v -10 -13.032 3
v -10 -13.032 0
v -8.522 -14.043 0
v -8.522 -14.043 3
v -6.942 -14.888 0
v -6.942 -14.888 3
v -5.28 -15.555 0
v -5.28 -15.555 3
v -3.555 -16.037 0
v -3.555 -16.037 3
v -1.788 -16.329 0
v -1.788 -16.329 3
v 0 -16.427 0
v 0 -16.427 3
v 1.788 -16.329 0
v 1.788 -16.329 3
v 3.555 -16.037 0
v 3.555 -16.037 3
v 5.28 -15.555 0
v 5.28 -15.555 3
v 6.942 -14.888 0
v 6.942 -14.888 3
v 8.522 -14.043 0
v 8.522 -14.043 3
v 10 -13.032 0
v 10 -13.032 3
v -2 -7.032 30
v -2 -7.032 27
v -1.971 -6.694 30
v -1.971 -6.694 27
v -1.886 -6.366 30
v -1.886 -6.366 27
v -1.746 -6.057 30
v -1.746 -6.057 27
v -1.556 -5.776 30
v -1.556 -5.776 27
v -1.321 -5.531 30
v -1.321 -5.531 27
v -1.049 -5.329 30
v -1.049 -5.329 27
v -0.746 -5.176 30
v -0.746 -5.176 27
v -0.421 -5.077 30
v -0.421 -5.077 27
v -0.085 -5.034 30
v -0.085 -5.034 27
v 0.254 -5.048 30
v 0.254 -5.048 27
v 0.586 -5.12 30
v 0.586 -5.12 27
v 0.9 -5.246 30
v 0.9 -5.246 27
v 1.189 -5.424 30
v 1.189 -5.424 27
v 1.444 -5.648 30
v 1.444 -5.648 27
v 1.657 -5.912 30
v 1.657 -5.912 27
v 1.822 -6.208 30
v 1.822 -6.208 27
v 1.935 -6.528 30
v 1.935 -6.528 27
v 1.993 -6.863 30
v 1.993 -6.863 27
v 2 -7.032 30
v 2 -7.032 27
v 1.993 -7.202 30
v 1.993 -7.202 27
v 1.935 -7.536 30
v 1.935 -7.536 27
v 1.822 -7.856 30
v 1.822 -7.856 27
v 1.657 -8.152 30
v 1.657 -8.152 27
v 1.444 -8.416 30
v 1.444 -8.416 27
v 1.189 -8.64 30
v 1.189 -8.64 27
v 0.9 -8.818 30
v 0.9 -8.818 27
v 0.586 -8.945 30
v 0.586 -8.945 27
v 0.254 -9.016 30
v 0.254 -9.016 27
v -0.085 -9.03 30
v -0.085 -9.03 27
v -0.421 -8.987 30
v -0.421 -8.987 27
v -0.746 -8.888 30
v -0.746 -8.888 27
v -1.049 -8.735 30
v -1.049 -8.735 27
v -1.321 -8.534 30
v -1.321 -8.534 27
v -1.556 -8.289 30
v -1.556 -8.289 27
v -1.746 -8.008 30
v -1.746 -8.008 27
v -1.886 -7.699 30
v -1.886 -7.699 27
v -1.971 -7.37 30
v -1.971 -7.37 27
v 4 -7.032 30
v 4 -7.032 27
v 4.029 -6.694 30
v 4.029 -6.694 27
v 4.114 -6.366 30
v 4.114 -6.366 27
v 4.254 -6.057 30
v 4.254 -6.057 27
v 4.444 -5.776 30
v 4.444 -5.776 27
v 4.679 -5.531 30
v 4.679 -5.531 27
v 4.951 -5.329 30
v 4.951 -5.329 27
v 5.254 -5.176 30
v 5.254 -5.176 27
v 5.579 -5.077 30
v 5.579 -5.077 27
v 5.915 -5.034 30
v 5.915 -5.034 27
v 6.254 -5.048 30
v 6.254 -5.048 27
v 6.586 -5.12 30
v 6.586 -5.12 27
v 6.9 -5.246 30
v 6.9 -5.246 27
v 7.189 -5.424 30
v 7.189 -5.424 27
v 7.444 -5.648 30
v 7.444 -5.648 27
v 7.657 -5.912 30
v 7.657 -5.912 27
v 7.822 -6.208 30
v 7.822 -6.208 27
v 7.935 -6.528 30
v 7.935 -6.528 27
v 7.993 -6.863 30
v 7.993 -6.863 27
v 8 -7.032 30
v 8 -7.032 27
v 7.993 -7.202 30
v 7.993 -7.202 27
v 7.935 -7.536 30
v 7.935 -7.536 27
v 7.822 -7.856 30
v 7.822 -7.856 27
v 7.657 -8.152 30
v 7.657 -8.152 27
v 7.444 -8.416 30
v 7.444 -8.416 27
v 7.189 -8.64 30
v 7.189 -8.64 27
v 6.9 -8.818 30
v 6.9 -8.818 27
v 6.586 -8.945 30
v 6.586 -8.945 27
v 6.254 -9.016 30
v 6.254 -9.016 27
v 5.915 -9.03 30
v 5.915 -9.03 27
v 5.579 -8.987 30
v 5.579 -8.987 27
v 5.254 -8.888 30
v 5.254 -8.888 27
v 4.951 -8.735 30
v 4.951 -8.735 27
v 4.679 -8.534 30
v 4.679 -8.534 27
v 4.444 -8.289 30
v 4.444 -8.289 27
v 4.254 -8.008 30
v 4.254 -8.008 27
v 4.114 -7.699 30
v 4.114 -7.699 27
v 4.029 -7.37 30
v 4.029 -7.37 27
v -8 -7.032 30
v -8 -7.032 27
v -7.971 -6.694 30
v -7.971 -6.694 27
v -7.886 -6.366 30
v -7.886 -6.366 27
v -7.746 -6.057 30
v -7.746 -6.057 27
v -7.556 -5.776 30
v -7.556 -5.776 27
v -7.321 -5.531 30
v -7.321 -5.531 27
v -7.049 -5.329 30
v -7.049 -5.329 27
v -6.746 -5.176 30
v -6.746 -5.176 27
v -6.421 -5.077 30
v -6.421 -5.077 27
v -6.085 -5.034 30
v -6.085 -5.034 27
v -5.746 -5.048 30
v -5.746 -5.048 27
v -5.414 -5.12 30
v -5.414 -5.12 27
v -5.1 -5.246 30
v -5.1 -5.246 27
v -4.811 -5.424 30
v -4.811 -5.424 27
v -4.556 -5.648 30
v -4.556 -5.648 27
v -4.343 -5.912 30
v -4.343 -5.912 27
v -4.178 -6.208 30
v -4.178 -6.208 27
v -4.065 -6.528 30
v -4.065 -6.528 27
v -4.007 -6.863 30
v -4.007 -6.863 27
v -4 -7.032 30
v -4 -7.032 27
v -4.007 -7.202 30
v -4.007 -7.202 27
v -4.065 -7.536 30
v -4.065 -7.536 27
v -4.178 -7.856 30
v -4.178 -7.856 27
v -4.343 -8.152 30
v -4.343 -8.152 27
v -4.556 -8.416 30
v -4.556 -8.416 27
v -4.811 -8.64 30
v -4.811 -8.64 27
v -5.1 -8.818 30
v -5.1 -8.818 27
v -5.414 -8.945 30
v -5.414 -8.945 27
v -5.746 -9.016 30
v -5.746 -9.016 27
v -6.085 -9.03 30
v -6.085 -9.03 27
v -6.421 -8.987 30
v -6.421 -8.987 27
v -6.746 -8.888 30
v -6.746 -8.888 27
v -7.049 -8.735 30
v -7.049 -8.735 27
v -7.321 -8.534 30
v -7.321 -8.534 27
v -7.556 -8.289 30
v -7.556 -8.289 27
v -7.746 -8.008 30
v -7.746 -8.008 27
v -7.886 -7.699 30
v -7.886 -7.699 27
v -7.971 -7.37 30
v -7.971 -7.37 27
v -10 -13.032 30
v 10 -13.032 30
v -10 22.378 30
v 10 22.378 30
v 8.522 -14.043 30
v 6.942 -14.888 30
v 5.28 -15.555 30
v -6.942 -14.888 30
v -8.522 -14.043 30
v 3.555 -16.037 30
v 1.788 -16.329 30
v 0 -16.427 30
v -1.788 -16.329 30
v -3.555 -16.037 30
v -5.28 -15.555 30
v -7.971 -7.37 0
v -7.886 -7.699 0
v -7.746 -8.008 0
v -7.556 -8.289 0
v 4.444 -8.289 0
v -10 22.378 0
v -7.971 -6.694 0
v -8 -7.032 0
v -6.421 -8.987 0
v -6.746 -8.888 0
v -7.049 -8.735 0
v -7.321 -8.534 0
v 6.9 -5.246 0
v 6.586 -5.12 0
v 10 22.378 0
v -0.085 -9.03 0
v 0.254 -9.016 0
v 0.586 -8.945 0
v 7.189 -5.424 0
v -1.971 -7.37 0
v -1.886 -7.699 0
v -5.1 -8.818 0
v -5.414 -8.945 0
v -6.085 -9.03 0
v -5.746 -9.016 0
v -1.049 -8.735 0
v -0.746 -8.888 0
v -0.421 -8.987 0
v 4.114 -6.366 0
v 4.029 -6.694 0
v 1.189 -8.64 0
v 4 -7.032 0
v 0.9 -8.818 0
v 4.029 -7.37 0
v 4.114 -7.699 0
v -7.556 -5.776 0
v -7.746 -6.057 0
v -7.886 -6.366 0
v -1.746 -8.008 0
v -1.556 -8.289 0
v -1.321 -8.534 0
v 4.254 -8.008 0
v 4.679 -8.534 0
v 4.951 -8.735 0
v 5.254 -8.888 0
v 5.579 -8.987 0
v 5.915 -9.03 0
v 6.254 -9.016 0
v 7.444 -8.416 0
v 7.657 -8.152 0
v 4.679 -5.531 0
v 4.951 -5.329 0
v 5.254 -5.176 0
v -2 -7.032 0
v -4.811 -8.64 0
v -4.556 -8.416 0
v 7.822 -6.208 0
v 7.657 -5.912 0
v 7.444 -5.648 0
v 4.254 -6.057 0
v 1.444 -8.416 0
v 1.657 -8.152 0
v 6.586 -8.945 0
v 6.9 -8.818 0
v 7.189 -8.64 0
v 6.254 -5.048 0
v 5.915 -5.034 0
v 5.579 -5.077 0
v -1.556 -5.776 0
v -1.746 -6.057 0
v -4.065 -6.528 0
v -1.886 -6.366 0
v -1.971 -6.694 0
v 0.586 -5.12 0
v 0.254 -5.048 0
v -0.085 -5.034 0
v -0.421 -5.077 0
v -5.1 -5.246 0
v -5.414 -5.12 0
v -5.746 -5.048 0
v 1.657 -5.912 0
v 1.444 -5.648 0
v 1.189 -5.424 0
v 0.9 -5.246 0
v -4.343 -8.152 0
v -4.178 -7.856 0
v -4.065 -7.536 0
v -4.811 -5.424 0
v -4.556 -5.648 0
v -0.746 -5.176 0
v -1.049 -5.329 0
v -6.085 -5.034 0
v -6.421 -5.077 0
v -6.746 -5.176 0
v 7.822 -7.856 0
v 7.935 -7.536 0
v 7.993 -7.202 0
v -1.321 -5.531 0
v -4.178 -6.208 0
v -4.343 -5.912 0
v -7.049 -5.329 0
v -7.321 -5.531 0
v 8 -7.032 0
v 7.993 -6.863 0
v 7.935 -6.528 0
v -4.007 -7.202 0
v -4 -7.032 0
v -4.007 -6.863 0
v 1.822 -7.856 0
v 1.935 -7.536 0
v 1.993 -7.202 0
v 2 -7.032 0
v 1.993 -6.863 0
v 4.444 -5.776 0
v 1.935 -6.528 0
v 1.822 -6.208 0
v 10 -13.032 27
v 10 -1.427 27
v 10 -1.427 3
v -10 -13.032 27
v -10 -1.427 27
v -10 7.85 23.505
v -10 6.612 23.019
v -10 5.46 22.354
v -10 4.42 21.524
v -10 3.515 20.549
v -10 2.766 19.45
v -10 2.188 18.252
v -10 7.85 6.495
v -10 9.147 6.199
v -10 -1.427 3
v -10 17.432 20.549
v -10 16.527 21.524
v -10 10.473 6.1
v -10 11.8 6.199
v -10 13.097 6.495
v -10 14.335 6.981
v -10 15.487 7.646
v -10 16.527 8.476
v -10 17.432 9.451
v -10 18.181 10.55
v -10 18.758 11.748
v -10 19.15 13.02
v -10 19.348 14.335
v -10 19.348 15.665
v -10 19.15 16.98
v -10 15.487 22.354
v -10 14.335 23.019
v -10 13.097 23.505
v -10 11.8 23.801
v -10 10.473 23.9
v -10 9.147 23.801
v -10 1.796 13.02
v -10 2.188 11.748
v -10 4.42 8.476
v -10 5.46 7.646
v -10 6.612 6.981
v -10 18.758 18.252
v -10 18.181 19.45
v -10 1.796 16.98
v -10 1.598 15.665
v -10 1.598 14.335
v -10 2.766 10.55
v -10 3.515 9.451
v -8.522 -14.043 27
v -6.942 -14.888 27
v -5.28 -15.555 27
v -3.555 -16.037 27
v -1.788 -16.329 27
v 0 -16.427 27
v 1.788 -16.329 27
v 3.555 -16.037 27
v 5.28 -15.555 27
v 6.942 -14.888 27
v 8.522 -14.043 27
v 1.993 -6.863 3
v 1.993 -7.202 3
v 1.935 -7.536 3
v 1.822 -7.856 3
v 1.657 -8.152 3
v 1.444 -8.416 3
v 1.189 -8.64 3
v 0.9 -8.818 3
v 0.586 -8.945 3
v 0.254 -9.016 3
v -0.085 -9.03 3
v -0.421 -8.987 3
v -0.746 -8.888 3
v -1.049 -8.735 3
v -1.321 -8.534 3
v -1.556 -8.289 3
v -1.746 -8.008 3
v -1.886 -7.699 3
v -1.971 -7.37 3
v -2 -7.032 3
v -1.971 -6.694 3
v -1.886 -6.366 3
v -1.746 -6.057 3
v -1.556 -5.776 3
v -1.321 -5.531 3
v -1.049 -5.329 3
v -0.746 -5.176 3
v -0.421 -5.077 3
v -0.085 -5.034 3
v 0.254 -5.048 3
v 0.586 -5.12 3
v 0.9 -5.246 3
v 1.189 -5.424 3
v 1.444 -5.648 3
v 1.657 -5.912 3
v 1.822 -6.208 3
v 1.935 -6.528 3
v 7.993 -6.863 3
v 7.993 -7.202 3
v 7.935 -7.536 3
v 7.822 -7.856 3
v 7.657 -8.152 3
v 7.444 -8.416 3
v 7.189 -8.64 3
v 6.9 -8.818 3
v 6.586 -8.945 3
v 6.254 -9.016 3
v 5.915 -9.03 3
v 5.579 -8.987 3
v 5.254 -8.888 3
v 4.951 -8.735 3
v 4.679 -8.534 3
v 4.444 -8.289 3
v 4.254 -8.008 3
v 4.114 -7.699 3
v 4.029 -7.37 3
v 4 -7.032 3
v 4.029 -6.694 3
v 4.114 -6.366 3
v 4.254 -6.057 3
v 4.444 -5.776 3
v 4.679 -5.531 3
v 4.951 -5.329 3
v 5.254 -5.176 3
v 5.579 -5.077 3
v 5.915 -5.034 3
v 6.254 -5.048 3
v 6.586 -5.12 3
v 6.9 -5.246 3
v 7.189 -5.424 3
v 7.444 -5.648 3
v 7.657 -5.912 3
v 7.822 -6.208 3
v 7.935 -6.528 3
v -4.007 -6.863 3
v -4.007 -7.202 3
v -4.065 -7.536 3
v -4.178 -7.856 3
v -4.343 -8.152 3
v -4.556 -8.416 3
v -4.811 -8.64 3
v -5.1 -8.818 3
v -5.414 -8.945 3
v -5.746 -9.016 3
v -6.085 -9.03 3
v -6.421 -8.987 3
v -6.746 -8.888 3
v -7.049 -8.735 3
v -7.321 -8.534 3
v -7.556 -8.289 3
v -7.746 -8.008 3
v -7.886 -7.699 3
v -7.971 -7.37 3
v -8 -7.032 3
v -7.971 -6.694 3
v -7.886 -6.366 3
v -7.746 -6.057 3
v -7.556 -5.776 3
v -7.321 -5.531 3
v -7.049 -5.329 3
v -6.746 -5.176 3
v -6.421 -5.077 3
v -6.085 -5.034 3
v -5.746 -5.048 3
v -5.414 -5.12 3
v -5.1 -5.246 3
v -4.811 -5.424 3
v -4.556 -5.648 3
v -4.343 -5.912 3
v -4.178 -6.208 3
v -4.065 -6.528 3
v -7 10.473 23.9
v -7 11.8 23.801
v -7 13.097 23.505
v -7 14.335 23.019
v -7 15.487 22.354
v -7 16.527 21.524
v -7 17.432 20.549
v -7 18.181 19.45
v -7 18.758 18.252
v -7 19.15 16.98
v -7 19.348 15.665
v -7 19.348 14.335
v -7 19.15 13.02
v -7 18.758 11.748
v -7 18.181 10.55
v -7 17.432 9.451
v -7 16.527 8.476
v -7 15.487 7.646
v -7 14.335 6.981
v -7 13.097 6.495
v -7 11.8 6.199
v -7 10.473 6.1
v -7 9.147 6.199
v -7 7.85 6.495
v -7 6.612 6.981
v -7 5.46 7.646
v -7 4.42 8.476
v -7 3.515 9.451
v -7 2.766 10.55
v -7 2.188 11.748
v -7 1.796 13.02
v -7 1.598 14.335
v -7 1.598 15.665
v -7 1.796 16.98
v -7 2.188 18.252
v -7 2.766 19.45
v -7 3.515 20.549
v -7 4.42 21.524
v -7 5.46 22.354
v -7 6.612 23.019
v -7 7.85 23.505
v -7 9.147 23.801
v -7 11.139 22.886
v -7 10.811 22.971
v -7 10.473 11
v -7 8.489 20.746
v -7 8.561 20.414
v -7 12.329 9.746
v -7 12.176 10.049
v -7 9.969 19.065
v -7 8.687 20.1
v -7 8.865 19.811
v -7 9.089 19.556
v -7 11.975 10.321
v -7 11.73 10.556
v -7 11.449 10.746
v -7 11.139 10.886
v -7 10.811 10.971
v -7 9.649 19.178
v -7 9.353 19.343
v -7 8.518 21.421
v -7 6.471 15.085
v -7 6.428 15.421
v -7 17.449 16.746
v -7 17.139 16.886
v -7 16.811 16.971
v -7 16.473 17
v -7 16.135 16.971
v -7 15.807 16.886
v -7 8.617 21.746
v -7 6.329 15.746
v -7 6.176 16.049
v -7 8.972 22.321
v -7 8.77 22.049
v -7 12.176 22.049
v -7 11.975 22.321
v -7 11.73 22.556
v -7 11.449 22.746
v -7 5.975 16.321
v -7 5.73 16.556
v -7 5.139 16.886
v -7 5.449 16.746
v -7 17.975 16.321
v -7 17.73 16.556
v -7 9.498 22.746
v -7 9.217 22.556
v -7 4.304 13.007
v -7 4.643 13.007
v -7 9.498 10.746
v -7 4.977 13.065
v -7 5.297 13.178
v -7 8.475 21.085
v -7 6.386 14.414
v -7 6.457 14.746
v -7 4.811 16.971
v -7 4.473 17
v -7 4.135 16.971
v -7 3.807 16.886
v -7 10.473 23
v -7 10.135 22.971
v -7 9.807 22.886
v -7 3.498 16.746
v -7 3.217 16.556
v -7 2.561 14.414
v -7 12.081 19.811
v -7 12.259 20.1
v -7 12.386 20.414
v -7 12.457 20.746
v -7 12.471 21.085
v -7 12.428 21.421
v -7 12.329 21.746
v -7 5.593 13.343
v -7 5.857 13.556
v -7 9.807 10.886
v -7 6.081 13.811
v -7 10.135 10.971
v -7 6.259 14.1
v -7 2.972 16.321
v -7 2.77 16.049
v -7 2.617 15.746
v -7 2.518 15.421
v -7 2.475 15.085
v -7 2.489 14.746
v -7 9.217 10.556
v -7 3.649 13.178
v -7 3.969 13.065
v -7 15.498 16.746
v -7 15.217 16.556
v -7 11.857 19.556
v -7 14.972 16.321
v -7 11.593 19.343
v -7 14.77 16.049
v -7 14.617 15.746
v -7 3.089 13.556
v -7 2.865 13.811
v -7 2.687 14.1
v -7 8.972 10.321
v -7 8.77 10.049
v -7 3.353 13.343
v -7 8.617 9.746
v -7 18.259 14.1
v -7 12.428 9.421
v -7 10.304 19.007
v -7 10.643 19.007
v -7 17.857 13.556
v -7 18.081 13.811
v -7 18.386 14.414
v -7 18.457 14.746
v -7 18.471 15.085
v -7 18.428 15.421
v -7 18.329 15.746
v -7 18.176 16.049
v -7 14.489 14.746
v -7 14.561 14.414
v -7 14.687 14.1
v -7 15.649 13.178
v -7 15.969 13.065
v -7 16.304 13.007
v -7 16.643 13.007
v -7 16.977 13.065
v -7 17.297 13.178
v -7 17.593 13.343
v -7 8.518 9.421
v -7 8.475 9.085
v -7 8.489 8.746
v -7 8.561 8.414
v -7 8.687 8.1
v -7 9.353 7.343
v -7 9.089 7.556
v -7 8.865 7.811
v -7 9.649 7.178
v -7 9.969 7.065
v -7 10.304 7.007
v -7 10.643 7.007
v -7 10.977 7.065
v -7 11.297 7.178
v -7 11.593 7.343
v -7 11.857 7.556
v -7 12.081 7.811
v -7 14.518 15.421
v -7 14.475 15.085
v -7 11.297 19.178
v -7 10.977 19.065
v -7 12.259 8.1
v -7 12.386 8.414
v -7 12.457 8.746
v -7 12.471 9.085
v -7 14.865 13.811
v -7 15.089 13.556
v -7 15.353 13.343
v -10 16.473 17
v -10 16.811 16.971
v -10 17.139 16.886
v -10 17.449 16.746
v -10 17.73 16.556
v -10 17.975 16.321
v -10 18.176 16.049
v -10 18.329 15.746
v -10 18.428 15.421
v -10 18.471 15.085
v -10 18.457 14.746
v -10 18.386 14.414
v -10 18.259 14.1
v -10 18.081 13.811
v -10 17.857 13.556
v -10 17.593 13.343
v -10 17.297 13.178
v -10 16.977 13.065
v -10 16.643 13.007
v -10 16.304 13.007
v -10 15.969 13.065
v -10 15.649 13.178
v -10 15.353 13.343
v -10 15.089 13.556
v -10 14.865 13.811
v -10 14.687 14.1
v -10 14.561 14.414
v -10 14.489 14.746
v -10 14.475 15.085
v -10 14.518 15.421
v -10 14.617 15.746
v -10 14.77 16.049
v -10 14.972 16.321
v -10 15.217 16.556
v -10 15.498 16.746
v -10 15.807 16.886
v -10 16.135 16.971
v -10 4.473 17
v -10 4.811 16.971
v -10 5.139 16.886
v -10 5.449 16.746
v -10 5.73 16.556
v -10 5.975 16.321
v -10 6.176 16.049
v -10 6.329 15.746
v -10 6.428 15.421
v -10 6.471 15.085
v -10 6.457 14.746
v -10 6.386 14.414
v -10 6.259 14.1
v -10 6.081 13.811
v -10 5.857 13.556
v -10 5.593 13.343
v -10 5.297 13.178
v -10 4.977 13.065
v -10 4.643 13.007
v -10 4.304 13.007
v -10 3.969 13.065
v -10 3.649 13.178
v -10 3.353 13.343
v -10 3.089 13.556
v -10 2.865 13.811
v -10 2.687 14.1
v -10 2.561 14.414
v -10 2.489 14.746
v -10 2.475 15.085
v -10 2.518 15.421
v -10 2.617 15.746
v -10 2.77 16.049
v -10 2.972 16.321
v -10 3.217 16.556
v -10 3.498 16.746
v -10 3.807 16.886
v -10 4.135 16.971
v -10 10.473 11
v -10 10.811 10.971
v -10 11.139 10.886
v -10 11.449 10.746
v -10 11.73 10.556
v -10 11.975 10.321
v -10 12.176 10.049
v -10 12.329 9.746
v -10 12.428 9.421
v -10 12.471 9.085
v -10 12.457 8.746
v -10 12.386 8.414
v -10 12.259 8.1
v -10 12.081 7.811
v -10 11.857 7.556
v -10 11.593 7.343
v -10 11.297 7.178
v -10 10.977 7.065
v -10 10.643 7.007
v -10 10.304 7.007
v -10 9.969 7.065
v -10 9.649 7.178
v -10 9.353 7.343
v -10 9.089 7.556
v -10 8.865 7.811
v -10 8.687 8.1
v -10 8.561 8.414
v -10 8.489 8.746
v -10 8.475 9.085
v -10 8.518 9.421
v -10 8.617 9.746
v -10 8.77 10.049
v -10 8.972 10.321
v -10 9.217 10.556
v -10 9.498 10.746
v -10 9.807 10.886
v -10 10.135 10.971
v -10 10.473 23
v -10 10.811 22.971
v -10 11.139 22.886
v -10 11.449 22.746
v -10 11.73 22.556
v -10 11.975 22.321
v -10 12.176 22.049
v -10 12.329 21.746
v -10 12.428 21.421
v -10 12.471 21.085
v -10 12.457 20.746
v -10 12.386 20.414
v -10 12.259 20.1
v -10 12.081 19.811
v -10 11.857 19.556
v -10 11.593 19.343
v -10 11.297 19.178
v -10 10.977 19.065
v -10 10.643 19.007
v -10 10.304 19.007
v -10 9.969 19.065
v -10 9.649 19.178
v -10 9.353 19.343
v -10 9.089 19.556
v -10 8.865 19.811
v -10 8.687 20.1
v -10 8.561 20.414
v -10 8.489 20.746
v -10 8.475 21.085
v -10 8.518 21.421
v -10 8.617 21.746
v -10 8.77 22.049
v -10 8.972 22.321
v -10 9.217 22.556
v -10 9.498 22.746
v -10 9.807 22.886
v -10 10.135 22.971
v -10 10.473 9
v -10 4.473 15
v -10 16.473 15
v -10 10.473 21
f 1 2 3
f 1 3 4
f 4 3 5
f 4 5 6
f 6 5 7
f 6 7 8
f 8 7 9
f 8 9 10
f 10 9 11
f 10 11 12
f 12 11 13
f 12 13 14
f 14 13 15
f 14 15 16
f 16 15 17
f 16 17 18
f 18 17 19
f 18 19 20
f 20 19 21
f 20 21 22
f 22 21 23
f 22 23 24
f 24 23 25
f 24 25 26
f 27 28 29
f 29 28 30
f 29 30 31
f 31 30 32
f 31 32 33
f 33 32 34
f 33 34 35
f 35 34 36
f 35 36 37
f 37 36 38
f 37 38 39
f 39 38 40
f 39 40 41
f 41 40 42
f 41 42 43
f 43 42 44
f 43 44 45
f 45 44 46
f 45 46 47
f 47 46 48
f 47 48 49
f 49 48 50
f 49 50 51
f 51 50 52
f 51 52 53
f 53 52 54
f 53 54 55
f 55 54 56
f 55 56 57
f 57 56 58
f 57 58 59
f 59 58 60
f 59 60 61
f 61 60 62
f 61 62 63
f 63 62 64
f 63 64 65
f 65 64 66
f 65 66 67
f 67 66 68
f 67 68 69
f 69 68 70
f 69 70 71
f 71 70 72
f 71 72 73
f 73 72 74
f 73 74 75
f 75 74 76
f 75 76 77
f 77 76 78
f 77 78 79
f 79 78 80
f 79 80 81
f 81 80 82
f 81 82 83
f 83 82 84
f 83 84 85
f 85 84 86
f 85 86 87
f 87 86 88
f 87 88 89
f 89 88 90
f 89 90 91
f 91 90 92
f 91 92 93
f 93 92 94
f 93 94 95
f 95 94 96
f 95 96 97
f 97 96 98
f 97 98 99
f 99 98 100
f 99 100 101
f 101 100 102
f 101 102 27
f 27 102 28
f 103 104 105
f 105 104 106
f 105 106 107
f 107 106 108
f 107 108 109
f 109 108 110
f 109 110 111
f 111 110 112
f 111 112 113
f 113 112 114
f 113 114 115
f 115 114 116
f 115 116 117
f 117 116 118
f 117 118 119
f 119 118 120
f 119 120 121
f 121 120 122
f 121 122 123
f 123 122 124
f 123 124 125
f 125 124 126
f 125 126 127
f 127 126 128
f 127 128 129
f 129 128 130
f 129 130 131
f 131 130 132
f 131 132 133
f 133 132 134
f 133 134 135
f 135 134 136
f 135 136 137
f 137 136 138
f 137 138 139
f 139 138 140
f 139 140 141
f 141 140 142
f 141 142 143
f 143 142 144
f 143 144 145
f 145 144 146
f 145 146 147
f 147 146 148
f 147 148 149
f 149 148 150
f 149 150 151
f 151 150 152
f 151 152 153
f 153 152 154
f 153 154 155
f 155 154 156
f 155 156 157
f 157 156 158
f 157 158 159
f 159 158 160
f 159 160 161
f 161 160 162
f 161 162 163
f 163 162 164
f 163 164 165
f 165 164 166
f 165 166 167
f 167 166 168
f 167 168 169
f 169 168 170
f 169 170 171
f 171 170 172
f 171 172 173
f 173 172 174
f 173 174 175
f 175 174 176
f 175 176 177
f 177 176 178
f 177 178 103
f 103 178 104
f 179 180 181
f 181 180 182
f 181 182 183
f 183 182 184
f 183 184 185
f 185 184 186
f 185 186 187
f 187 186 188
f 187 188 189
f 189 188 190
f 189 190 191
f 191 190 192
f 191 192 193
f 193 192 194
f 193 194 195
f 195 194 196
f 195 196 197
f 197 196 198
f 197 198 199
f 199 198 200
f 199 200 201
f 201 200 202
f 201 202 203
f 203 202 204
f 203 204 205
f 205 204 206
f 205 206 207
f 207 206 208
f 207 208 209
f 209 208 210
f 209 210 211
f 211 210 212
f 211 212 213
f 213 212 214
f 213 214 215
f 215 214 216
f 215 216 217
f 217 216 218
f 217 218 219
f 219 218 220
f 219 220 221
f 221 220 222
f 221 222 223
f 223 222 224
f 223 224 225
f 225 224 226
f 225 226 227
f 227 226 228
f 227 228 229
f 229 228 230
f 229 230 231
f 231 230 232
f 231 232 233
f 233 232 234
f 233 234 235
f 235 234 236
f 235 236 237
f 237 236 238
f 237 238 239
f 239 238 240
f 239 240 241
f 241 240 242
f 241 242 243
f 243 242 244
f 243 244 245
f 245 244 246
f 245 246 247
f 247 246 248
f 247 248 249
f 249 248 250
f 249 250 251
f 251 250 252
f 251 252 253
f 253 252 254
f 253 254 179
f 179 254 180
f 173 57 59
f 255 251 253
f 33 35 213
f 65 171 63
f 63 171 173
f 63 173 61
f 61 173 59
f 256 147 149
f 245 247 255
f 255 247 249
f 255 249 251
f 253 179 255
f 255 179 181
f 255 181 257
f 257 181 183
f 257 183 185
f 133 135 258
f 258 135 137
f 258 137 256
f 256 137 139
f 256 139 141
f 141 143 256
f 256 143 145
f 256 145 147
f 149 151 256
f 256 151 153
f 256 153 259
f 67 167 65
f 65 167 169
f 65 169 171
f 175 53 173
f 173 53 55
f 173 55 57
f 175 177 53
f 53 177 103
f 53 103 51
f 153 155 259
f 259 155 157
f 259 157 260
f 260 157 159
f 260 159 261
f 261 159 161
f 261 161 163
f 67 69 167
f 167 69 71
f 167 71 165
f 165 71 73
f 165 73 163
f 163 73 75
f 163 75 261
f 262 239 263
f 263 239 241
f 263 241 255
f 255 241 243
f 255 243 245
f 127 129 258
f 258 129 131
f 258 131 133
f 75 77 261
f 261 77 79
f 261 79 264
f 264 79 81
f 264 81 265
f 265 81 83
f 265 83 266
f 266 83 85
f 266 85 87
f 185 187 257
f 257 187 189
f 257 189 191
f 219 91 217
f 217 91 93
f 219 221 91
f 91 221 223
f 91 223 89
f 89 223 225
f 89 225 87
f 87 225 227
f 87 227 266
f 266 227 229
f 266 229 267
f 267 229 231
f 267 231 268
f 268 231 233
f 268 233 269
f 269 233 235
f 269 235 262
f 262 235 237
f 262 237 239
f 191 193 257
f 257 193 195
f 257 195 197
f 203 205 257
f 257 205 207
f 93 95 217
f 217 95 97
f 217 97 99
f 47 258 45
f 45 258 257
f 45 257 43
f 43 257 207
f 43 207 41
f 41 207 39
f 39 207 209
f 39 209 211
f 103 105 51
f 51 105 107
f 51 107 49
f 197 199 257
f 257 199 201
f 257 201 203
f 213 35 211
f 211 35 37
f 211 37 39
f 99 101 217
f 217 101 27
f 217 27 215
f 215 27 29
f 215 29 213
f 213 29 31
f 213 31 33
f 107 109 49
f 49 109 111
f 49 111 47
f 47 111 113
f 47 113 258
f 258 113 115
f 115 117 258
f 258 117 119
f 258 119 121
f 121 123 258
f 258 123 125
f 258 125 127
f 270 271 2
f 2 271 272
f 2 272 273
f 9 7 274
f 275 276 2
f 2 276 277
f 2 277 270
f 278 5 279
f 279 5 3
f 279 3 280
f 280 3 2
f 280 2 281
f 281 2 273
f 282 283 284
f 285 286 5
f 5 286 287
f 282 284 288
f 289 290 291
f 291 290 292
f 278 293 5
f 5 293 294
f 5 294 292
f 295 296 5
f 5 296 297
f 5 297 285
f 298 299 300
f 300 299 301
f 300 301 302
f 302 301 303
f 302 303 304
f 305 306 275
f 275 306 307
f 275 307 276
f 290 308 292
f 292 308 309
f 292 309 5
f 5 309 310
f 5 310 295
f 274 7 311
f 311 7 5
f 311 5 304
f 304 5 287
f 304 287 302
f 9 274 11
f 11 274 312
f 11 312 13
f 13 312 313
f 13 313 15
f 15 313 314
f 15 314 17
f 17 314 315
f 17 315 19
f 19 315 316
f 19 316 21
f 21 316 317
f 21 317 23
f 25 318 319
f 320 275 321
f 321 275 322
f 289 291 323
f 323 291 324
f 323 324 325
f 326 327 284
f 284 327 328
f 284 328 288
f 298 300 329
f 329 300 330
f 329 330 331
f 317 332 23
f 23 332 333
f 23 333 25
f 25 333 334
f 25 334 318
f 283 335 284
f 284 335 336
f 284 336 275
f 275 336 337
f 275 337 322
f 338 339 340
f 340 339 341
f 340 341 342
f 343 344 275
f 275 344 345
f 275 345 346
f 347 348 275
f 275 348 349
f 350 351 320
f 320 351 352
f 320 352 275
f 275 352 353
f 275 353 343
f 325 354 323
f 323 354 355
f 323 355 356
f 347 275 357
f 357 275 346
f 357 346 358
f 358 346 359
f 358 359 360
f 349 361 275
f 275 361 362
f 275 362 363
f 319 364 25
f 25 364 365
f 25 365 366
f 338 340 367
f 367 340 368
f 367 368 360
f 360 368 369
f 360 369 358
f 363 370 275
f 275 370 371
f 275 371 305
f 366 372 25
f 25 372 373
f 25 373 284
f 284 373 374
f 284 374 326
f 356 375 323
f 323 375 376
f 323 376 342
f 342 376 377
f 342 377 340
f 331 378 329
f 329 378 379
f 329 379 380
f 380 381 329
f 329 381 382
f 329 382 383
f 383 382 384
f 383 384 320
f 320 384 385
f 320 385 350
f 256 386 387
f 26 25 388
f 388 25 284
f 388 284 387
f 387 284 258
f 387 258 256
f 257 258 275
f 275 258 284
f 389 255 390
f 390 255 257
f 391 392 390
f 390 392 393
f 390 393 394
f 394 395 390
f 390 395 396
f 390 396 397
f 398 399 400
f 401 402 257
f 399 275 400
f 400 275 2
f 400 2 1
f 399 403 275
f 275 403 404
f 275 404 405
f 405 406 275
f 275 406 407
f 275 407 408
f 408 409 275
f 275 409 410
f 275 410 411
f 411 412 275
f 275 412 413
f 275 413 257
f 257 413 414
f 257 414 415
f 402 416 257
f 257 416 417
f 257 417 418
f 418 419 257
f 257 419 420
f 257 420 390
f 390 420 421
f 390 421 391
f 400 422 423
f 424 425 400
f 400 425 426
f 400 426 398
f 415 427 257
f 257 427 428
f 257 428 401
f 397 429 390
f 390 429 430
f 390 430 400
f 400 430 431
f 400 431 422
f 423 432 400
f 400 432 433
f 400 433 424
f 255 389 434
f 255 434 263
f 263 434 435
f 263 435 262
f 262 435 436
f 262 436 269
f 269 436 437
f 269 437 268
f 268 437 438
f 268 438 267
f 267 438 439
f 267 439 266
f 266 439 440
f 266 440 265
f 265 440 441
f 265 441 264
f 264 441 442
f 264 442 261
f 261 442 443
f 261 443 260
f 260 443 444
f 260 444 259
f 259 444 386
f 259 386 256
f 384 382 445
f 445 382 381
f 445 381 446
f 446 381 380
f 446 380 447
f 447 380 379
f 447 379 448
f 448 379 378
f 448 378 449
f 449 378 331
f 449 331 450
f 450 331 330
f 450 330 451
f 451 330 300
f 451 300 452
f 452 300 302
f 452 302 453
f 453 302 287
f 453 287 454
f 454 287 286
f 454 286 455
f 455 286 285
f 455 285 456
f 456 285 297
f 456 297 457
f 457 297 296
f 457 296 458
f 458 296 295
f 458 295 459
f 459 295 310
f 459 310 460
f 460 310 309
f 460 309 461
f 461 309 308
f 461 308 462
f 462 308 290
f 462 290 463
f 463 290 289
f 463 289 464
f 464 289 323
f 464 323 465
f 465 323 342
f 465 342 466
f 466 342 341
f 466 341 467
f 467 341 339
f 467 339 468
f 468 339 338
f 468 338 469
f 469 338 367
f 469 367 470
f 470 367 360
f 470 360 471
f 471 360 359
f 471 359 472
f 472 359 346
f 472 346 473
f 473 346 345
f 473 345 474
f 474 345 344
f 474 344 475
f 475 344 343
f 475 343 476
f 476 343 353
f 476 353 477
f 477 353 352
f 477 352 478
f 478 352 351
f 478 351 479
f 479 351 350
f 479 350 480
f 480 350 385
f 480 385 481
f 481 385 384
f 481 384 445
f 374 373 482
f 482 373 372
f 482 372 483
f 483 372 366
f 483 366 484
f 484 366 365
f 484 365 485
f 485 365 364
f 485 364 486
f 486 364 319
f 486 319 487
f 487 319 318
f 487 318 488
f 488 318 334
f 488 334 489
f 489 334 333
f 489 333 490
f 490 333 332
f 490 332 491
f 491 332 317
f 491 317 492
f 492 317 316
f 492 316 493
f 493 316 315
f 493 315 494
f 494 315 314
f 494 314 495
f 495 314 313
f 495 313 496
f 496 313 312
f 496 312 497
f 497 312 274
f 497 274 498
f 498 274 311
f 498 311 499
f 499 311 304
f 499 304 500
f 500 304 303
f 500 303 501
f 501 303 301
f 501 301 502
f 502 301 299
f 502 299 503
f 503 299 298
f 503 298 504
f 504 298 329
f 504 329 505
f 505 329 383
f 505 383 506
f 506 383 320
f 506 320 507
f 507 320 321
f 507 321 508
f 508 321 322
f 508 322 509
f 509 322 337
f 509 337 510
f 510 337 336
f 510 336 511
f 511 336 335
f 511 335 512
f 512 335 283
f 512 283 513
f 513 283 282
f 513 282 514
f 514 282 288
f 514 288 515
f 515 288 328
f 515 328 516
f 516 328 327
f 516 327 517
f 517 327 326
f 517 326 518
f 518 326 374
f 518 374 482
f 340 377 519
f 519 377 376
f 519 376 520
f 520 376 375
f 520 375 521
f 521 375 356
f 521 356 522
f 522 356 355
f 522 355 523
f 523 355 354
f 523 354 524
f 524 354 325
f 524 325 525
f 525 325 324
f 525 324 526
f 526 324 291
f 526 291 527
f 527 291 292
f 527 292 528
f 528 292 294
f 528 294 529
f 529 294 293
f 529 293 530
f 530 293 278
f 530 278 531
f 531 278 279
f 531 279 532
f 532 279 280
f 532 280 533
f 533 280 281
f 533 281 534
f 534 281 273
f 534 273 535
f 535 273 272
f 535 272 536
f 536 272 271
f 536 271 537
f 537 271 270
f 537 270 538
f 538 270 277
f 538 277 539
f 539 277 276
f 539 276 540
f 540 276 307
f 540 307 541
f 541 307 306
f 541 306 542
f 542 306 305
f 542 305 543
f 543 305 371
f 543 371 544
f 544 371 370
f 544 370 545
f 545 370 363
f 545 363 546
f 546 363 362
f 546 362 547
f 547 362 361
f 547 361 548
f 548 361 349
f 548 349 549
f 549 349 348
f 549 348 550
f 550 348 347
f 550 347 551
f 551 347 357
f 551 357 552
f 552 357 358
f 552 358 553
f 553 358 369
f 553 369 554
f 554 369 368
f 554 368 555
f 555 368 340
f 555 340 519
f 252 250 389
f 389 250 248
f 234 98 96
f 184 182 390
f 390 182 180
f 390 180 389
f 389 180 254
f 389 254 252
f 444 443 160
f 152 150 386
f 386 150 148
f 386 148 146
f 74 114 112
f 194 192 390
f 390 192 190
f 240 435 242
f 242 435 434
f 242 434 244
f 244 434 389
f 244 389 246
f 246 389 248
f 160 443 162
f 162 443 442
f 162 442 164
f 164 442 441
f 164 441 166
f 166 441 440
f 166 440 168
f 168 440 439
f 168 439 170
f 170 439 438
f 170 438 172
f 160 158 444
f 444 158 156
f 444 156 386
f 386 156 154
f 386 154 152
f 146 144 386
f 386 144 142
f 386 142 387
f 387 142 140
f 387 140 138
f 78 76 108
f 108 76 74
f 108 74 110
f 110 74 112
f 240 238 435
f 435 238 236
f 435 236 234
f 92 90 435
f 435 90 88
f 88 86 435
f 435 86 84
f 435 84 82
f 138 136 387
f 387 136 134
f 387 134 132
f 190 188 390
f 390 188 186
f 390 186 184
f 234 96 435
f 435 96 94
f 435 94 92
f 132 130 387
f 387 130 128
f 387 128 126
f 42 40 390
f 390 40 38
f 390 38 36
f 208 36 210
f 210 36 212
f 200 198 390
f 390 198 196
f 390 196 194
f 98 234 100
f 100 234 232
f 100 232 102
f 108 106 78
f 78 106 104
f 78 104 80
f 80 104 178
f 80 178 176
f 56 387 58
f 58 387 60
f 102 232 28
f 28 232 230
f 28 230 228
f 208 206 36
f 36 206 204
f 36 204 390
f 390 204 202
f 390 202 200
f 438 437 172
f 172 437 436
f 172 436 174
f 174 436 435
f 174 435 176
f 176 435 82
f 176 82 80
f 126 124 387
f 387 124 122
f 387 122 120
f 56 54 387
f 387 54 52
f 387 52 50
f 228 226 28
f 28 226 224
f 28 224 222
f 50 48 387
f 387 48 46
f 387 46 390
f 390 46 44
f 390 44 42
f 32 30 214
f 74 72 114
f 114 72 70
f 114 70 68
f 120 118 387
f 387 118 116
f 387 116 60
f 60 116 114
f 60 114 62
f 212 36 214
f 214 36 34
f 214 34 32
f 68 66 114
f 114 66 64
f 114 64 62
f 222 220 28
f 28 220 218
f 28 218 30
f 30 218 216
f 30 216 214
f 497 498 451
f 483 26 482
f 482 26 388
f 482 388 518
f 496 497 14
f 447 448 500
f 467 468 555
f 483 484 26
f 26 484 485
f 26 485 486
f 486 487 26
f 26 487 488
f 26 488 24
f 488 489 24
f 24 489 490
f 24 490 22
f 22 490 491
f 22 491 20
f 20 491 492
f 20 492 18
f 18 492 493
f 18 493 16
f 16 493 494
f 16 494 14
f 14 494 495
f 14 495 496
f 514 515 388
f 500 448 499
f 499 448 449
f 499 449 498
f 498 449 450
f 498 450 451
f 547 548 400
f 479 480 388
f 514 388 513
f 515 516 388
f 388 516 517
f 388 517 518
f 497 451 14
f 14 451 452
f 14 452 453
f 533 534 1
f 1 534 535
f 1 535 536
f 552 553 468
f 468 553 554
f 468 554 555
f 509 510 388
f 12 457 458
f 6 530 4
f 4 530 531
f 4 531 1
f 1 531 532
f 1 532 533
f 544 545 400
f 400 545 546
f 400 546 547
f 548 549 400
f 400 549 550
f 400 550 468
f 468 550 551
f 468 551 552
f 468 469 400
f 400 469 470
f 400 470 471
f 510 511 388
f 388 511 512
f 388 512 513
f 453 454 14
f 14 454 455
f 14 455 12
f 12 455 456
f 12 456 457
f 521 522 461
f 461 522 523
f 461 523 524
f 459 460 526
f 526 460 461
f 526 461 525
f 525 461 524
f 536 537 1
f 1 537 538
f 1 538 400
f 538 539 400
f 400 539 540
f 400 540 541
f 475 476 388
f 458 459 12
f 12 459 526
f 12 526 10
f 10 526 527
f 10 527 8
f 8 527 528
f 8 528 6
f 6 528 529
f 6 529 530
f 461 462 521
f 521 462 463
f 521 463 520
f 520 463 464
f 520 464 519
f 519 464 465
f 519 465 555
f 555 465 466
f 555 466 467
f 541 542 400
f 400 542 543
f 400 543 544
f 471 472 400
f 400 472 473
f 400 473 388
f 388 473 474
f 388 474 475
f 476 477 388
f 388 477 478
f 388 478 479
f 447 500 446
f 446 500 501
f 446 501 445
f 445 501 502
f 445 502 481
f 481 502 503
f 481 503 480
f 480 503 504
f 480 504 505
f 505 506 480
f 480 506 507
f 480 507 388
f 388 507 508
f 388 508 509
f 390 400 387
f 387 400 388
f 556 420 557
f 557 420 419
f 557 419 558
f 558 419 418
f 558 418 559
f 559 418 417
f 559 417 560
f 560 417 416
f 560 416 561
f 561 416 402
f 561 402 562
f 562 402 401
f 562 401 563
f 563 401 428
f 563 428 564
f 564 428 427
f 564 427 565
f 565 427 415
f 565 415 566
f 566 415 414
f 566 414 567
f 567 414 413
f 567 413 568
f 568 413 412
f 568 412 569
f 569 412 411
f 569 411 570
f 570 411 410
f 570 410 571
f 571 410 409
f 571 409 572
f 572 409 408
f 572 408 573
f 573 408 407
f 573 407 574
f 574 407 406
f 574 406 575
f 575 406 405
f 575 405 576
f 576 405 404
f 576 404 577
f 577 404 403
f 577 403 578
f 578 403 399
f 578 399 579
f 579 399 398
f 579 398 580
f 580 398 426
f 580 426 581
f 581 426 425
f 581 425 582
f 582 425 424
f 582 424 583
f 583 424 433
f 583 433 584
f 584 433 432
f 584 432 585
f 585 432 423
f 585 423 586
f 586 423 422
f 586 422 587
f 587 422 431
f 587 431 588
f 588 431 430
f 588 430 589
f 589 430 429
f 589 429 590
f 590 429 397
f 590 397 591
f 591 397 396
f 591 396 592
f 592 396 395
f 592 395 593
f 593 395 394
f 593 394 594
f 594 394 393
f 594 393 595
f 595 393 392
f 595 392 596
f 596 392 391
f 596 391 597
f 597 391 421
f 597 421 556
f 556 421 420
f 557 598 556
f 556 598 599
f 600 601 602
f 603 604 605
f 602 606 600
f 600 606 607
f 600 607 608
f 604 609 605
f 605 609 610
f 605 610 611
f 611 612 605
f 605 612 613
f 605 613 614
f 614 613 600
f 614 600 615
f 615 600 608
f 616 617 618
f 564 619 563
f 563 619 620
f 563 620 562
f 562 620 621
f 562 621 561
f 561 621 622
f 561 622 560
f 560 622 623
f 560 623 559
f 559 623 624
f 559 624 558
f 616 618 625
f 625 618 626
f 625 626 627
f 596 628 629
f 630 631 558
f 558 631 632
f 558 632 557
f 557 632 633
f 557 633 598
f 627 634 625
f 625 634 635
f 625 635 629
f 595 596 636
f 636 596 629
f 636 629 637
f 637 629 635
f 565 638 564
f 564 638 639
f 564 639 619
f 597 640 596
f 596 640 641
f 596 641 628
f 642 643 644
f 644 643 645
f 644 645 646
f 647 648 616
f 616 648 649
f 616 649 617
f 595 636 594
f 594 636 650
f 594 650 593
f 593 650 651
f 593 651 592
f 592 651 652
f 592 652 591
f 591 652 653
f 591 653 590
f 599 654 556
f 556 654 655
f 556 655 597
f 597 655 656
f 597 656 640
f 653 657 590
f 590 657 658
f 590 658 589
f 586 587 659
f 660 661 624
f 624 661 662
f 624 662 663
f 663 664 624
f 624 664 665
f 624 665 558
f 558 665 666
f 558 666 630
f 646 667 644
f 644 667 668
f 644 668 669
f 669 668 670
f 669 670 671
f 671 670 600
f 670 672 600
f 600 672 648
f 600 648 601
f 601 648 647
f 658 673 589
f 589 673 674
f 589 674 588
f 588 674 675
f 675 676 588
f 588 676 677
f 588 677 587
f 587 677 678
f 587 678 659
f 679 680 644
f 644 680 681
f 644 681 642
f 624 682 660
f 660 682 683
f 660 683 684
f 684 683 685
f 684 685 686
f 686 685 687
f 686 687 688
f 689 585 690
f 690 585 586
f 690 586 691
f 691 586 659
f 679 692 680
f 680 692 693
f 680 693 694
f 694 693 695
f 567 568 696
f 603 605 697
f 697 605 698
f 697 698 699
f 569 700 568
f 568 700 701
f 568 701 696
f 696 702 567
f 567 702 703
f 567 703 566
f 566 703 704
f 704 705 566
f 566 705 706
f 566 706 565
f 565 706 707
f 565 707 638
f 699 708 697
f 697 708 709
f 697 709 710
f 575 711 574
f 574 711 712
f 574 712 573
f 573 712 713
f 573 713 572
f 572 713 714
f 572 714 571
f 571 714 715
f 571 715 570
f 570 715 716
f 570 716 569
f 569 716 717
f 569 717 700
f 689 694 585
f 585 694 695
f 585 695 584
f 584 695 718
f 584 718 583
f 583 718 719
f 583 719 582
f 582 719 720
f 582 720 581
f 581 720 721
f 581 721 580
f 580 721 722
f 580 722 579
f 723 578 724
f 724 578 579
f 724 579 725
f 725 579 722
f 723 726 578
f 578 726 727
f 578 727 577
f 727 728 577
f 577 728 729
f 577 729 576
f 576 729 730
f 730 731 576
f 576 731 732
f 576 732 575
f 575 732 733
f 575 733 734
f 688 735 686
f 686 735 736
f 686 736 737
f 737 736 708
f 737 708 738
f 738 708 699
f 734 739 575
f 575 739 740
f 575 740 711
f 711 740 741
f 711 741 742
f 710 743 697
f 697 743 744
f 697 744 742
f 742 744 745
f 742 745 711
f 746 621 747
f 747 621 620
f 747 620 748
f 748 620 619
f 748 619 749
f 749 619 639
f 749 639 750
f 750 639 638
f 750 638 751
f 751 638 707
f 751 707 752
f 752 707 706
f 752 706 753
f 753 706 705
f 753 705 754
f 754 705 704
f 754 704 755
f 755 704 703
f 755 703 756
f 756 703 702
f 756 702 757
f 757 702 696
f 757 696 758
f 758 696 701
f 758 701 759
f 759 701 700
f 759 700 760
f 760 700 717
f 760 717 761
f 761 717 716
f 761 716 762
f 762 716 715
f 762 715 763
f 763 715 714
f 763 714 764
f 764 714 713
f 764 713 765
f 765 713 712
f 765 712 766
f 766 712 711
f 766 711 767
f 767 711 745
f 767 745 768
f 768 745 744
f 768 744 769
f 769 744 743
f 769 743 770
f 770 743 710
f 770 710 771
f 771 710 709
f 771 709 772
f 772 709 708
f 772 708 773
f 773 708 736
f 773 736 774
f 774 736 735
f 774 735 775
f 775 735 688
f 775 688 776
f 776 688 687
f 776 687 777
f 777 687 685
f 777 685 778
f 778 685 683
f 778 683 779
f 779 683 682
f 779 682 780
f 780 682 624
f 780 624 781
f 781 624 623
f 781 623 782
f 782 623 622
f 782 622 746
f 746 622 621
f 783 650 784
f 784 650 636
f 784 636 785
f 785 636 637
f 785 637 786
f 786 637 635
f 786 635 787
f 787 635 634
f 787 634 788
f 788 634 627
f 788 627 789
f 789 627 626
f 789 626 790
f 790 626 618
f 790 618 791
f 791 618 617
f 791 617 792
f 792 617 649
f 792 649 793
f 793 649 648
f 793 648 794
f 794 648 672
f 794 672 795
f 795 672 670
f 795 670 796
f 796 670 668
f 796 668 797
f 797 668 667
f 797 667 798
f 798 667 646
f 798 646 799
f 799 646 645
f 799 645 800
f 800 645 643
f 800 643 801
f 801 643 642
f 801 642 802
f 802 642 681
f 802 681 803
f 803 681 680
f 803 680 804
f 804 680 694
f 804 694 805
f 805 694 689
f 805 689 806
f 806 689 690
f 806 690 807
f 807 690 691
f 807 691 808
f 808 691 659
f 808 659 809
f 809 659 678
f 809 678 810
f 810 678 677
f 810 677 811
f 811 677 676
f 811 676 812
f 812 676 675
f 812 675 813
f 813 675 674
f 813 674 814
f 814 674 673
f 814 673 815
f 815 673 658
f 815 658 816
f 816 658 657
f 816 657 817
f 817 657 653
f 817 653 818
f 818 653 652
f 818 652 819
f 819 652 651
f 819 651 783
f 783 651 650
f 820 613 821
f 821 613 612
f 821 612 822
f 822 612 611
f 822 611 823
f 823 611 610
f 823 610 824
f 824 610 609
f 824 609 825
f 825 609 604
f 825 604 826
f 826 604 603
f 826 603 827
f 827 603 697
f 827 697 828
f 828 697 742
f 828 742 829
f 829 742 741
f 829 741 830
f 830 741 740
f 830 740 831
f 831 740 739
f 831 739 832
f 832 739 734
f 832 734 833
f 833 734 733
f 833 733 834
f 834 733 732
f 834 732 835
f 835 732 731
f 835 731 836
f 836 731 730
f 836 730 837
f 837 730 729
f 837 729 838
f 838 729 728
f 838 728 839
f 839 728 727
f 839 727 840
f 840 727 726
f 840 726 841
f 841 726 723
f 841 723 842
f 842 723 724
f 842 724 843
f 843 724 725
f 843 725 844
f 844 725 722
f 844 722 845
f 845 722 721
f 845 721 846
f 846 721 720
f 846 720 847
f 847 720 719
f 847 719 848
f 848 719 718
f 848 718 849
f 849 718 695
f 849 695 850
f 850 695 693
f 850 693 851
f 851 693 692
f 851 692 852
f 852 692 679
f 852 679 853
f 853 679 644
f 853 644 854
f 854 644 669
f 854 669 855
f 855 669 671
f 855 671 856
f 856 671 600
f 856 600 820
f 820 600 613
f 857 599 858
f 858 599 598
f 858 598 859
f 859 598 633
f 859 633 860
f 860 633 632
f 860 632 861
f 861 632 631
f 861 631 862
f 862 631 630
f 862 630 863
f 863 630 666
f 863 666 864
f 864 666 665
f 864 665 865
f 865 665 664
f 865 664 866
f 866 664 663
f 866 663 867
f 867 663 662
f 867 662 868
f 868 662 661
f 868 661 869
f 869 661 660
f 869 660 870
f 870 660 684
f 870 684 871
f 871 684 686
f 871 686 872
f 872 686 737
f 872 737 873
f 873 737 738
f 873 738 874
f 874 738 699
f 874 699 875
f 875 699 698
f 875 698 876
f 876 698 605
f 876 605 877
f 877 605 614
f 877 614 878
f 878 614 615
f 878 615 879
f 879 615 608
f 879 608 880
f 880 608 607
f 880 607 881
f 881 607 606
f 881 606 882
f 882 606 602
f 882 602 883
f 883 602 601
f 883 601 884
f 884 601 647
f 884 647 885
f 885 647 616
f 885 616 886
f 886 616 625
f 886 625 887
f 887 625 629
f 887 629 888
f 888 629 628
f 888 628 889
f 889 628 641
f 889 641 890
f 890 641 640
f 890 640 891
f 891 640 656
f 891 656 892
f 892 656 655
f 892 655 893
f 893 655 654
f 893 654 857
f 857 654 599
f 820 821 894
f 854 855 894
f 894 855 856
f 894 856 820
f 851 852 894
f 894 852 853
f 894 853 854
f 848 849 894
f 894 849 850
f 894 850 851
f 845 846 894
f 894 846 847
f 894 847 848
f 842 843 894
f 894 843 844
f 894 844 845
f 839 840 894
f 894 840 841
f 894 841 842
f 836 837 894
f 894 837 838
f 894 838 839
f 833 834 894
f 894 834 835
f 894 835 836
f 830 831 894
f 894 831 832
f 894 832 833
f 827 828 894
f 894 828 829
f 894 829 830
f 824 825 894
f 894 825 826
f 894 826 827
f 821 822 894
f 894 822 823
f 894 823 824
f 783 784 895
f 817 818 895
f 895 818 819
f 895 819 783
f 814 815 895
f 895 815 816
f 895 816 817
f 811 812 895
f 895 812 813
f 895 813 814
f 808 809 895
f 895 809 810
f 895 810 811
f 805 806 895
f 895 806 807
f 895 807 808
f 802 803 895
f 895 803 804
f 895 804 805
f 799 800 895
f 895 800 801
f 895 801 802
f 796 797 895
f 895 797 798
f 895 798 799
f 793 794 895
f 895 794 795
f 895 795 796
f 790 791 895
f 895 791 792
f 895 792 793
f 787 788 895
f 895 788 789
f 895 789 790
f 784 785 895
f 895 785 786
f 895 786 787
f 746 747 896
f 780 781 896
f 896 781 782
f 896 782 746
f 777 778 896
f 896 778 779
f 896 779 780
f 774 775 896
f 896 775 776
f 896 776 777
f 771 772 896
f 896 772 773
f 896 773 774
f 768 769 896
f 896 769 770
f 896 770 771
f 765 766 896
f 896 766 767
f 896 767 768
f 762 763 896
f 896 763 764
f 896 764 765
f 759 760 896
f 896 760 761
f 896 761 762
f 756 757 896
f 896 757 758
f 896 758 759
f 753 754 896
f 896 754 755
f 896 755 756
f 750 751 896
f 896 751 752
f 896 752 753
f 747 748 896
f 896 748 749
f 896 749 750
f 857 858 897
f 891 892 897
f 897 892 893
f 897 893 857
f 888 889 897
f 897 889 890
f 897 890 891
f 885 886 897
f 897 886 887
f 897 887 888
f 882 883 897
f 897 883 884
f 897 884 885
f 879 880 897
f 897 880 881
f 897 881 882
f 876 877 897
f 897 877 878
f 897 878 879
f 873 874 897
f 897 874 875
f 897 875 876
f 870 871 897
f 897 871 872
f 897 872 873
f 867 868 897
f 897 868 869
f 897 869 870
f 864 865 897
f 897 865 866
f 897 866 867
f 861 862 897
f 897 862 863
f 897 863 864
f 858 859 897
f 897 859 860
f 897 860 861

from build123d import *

# Parameters (mm, degrees)
SKETCH1_R           = 2
BOSS_EXTRUDE1_DEPTH = 30
SKETCH2_W           = 24
SKETCH2_H           = 15
CUT_EXTRUDE1_DEPTH  = 43.435404183
SKETCH3_R           = 8.9
SKETCH3_R_2         = 2
CUT_EXTRUDE2_DEPTH  = 3


with BuildPart() as part:
    # Sketch1 → Boss-Extrude1 (new body)
    with BuildSketch(Plane.XY):
        with BuildLine():
            Line((-10, 22.377746272), (10, 22.377746272))
            Line((10, 22.377746272), (10, -13.032253728))
            ThreePointArc((10, -13.032253728), (0, -16.426796317), (-10, -13.032253728))
            Line((-10, -13.032253728), (-10, 22.377746272))
        make_face()
        with Locations((0, -7.032253728)):
            Circle(SKETCH1_R, mode=Mode.SUBTRACT)
        with Locations((6, -7.032253728)):
            Circle(SKETCH1_R, mode=Mode.SUBTRACT)
        with Locations((-6, -7.032253728)):
            Circle(SKETCH1_R, mode=Mode.SUBTRACT)
    extrude(amount=BOSS_EXTRUDE1_DEPTH)

    # Sketch2 → Cut-Extrude1 (cut, through all)
    with BuildSketch(Plane(origin=(10, 0, 0), x_dir=(0, 0, -1), z_dir=(1, 0, 0))):
        with Locations((-15, -8.926796317)):
            Rectangle(SKETCH2_W, SKETCH2_H)
    extrude(amount=-CUT_EXTRUDE1_DEPTH, mode=Mode.SUBTRACT)

    # Sketch3 → Cut-Extrude2 (cut)
    with BuildSketch(Plane.ZY.offset(10)):
        with Locations((15, 10.473203683)):
            Circle(SKETCH3_R)
        with Locations((15, 16.473203683)):
            Circle(SKETCH3_R_2, mode=Mode.SUBTRACT)
        with Locations((15, 4.473203683)):
            Circle(SKETCH3_R_2, mode=Mode.SUBTRACT)
        with Locations((9, 10.473203683)):
            Circle(SKETCH3_R_2, mode=Mode.SUBTRACT)
        with Locations((21, 10.473203683)):
            Circle(SKETCH3_R_2, mode=Mode.SUBTRACT)
    extrude(amount=-CUT_EXTRUDE2_DEPTH, mode=Mode.SUBTRACT)


solid = part.part
